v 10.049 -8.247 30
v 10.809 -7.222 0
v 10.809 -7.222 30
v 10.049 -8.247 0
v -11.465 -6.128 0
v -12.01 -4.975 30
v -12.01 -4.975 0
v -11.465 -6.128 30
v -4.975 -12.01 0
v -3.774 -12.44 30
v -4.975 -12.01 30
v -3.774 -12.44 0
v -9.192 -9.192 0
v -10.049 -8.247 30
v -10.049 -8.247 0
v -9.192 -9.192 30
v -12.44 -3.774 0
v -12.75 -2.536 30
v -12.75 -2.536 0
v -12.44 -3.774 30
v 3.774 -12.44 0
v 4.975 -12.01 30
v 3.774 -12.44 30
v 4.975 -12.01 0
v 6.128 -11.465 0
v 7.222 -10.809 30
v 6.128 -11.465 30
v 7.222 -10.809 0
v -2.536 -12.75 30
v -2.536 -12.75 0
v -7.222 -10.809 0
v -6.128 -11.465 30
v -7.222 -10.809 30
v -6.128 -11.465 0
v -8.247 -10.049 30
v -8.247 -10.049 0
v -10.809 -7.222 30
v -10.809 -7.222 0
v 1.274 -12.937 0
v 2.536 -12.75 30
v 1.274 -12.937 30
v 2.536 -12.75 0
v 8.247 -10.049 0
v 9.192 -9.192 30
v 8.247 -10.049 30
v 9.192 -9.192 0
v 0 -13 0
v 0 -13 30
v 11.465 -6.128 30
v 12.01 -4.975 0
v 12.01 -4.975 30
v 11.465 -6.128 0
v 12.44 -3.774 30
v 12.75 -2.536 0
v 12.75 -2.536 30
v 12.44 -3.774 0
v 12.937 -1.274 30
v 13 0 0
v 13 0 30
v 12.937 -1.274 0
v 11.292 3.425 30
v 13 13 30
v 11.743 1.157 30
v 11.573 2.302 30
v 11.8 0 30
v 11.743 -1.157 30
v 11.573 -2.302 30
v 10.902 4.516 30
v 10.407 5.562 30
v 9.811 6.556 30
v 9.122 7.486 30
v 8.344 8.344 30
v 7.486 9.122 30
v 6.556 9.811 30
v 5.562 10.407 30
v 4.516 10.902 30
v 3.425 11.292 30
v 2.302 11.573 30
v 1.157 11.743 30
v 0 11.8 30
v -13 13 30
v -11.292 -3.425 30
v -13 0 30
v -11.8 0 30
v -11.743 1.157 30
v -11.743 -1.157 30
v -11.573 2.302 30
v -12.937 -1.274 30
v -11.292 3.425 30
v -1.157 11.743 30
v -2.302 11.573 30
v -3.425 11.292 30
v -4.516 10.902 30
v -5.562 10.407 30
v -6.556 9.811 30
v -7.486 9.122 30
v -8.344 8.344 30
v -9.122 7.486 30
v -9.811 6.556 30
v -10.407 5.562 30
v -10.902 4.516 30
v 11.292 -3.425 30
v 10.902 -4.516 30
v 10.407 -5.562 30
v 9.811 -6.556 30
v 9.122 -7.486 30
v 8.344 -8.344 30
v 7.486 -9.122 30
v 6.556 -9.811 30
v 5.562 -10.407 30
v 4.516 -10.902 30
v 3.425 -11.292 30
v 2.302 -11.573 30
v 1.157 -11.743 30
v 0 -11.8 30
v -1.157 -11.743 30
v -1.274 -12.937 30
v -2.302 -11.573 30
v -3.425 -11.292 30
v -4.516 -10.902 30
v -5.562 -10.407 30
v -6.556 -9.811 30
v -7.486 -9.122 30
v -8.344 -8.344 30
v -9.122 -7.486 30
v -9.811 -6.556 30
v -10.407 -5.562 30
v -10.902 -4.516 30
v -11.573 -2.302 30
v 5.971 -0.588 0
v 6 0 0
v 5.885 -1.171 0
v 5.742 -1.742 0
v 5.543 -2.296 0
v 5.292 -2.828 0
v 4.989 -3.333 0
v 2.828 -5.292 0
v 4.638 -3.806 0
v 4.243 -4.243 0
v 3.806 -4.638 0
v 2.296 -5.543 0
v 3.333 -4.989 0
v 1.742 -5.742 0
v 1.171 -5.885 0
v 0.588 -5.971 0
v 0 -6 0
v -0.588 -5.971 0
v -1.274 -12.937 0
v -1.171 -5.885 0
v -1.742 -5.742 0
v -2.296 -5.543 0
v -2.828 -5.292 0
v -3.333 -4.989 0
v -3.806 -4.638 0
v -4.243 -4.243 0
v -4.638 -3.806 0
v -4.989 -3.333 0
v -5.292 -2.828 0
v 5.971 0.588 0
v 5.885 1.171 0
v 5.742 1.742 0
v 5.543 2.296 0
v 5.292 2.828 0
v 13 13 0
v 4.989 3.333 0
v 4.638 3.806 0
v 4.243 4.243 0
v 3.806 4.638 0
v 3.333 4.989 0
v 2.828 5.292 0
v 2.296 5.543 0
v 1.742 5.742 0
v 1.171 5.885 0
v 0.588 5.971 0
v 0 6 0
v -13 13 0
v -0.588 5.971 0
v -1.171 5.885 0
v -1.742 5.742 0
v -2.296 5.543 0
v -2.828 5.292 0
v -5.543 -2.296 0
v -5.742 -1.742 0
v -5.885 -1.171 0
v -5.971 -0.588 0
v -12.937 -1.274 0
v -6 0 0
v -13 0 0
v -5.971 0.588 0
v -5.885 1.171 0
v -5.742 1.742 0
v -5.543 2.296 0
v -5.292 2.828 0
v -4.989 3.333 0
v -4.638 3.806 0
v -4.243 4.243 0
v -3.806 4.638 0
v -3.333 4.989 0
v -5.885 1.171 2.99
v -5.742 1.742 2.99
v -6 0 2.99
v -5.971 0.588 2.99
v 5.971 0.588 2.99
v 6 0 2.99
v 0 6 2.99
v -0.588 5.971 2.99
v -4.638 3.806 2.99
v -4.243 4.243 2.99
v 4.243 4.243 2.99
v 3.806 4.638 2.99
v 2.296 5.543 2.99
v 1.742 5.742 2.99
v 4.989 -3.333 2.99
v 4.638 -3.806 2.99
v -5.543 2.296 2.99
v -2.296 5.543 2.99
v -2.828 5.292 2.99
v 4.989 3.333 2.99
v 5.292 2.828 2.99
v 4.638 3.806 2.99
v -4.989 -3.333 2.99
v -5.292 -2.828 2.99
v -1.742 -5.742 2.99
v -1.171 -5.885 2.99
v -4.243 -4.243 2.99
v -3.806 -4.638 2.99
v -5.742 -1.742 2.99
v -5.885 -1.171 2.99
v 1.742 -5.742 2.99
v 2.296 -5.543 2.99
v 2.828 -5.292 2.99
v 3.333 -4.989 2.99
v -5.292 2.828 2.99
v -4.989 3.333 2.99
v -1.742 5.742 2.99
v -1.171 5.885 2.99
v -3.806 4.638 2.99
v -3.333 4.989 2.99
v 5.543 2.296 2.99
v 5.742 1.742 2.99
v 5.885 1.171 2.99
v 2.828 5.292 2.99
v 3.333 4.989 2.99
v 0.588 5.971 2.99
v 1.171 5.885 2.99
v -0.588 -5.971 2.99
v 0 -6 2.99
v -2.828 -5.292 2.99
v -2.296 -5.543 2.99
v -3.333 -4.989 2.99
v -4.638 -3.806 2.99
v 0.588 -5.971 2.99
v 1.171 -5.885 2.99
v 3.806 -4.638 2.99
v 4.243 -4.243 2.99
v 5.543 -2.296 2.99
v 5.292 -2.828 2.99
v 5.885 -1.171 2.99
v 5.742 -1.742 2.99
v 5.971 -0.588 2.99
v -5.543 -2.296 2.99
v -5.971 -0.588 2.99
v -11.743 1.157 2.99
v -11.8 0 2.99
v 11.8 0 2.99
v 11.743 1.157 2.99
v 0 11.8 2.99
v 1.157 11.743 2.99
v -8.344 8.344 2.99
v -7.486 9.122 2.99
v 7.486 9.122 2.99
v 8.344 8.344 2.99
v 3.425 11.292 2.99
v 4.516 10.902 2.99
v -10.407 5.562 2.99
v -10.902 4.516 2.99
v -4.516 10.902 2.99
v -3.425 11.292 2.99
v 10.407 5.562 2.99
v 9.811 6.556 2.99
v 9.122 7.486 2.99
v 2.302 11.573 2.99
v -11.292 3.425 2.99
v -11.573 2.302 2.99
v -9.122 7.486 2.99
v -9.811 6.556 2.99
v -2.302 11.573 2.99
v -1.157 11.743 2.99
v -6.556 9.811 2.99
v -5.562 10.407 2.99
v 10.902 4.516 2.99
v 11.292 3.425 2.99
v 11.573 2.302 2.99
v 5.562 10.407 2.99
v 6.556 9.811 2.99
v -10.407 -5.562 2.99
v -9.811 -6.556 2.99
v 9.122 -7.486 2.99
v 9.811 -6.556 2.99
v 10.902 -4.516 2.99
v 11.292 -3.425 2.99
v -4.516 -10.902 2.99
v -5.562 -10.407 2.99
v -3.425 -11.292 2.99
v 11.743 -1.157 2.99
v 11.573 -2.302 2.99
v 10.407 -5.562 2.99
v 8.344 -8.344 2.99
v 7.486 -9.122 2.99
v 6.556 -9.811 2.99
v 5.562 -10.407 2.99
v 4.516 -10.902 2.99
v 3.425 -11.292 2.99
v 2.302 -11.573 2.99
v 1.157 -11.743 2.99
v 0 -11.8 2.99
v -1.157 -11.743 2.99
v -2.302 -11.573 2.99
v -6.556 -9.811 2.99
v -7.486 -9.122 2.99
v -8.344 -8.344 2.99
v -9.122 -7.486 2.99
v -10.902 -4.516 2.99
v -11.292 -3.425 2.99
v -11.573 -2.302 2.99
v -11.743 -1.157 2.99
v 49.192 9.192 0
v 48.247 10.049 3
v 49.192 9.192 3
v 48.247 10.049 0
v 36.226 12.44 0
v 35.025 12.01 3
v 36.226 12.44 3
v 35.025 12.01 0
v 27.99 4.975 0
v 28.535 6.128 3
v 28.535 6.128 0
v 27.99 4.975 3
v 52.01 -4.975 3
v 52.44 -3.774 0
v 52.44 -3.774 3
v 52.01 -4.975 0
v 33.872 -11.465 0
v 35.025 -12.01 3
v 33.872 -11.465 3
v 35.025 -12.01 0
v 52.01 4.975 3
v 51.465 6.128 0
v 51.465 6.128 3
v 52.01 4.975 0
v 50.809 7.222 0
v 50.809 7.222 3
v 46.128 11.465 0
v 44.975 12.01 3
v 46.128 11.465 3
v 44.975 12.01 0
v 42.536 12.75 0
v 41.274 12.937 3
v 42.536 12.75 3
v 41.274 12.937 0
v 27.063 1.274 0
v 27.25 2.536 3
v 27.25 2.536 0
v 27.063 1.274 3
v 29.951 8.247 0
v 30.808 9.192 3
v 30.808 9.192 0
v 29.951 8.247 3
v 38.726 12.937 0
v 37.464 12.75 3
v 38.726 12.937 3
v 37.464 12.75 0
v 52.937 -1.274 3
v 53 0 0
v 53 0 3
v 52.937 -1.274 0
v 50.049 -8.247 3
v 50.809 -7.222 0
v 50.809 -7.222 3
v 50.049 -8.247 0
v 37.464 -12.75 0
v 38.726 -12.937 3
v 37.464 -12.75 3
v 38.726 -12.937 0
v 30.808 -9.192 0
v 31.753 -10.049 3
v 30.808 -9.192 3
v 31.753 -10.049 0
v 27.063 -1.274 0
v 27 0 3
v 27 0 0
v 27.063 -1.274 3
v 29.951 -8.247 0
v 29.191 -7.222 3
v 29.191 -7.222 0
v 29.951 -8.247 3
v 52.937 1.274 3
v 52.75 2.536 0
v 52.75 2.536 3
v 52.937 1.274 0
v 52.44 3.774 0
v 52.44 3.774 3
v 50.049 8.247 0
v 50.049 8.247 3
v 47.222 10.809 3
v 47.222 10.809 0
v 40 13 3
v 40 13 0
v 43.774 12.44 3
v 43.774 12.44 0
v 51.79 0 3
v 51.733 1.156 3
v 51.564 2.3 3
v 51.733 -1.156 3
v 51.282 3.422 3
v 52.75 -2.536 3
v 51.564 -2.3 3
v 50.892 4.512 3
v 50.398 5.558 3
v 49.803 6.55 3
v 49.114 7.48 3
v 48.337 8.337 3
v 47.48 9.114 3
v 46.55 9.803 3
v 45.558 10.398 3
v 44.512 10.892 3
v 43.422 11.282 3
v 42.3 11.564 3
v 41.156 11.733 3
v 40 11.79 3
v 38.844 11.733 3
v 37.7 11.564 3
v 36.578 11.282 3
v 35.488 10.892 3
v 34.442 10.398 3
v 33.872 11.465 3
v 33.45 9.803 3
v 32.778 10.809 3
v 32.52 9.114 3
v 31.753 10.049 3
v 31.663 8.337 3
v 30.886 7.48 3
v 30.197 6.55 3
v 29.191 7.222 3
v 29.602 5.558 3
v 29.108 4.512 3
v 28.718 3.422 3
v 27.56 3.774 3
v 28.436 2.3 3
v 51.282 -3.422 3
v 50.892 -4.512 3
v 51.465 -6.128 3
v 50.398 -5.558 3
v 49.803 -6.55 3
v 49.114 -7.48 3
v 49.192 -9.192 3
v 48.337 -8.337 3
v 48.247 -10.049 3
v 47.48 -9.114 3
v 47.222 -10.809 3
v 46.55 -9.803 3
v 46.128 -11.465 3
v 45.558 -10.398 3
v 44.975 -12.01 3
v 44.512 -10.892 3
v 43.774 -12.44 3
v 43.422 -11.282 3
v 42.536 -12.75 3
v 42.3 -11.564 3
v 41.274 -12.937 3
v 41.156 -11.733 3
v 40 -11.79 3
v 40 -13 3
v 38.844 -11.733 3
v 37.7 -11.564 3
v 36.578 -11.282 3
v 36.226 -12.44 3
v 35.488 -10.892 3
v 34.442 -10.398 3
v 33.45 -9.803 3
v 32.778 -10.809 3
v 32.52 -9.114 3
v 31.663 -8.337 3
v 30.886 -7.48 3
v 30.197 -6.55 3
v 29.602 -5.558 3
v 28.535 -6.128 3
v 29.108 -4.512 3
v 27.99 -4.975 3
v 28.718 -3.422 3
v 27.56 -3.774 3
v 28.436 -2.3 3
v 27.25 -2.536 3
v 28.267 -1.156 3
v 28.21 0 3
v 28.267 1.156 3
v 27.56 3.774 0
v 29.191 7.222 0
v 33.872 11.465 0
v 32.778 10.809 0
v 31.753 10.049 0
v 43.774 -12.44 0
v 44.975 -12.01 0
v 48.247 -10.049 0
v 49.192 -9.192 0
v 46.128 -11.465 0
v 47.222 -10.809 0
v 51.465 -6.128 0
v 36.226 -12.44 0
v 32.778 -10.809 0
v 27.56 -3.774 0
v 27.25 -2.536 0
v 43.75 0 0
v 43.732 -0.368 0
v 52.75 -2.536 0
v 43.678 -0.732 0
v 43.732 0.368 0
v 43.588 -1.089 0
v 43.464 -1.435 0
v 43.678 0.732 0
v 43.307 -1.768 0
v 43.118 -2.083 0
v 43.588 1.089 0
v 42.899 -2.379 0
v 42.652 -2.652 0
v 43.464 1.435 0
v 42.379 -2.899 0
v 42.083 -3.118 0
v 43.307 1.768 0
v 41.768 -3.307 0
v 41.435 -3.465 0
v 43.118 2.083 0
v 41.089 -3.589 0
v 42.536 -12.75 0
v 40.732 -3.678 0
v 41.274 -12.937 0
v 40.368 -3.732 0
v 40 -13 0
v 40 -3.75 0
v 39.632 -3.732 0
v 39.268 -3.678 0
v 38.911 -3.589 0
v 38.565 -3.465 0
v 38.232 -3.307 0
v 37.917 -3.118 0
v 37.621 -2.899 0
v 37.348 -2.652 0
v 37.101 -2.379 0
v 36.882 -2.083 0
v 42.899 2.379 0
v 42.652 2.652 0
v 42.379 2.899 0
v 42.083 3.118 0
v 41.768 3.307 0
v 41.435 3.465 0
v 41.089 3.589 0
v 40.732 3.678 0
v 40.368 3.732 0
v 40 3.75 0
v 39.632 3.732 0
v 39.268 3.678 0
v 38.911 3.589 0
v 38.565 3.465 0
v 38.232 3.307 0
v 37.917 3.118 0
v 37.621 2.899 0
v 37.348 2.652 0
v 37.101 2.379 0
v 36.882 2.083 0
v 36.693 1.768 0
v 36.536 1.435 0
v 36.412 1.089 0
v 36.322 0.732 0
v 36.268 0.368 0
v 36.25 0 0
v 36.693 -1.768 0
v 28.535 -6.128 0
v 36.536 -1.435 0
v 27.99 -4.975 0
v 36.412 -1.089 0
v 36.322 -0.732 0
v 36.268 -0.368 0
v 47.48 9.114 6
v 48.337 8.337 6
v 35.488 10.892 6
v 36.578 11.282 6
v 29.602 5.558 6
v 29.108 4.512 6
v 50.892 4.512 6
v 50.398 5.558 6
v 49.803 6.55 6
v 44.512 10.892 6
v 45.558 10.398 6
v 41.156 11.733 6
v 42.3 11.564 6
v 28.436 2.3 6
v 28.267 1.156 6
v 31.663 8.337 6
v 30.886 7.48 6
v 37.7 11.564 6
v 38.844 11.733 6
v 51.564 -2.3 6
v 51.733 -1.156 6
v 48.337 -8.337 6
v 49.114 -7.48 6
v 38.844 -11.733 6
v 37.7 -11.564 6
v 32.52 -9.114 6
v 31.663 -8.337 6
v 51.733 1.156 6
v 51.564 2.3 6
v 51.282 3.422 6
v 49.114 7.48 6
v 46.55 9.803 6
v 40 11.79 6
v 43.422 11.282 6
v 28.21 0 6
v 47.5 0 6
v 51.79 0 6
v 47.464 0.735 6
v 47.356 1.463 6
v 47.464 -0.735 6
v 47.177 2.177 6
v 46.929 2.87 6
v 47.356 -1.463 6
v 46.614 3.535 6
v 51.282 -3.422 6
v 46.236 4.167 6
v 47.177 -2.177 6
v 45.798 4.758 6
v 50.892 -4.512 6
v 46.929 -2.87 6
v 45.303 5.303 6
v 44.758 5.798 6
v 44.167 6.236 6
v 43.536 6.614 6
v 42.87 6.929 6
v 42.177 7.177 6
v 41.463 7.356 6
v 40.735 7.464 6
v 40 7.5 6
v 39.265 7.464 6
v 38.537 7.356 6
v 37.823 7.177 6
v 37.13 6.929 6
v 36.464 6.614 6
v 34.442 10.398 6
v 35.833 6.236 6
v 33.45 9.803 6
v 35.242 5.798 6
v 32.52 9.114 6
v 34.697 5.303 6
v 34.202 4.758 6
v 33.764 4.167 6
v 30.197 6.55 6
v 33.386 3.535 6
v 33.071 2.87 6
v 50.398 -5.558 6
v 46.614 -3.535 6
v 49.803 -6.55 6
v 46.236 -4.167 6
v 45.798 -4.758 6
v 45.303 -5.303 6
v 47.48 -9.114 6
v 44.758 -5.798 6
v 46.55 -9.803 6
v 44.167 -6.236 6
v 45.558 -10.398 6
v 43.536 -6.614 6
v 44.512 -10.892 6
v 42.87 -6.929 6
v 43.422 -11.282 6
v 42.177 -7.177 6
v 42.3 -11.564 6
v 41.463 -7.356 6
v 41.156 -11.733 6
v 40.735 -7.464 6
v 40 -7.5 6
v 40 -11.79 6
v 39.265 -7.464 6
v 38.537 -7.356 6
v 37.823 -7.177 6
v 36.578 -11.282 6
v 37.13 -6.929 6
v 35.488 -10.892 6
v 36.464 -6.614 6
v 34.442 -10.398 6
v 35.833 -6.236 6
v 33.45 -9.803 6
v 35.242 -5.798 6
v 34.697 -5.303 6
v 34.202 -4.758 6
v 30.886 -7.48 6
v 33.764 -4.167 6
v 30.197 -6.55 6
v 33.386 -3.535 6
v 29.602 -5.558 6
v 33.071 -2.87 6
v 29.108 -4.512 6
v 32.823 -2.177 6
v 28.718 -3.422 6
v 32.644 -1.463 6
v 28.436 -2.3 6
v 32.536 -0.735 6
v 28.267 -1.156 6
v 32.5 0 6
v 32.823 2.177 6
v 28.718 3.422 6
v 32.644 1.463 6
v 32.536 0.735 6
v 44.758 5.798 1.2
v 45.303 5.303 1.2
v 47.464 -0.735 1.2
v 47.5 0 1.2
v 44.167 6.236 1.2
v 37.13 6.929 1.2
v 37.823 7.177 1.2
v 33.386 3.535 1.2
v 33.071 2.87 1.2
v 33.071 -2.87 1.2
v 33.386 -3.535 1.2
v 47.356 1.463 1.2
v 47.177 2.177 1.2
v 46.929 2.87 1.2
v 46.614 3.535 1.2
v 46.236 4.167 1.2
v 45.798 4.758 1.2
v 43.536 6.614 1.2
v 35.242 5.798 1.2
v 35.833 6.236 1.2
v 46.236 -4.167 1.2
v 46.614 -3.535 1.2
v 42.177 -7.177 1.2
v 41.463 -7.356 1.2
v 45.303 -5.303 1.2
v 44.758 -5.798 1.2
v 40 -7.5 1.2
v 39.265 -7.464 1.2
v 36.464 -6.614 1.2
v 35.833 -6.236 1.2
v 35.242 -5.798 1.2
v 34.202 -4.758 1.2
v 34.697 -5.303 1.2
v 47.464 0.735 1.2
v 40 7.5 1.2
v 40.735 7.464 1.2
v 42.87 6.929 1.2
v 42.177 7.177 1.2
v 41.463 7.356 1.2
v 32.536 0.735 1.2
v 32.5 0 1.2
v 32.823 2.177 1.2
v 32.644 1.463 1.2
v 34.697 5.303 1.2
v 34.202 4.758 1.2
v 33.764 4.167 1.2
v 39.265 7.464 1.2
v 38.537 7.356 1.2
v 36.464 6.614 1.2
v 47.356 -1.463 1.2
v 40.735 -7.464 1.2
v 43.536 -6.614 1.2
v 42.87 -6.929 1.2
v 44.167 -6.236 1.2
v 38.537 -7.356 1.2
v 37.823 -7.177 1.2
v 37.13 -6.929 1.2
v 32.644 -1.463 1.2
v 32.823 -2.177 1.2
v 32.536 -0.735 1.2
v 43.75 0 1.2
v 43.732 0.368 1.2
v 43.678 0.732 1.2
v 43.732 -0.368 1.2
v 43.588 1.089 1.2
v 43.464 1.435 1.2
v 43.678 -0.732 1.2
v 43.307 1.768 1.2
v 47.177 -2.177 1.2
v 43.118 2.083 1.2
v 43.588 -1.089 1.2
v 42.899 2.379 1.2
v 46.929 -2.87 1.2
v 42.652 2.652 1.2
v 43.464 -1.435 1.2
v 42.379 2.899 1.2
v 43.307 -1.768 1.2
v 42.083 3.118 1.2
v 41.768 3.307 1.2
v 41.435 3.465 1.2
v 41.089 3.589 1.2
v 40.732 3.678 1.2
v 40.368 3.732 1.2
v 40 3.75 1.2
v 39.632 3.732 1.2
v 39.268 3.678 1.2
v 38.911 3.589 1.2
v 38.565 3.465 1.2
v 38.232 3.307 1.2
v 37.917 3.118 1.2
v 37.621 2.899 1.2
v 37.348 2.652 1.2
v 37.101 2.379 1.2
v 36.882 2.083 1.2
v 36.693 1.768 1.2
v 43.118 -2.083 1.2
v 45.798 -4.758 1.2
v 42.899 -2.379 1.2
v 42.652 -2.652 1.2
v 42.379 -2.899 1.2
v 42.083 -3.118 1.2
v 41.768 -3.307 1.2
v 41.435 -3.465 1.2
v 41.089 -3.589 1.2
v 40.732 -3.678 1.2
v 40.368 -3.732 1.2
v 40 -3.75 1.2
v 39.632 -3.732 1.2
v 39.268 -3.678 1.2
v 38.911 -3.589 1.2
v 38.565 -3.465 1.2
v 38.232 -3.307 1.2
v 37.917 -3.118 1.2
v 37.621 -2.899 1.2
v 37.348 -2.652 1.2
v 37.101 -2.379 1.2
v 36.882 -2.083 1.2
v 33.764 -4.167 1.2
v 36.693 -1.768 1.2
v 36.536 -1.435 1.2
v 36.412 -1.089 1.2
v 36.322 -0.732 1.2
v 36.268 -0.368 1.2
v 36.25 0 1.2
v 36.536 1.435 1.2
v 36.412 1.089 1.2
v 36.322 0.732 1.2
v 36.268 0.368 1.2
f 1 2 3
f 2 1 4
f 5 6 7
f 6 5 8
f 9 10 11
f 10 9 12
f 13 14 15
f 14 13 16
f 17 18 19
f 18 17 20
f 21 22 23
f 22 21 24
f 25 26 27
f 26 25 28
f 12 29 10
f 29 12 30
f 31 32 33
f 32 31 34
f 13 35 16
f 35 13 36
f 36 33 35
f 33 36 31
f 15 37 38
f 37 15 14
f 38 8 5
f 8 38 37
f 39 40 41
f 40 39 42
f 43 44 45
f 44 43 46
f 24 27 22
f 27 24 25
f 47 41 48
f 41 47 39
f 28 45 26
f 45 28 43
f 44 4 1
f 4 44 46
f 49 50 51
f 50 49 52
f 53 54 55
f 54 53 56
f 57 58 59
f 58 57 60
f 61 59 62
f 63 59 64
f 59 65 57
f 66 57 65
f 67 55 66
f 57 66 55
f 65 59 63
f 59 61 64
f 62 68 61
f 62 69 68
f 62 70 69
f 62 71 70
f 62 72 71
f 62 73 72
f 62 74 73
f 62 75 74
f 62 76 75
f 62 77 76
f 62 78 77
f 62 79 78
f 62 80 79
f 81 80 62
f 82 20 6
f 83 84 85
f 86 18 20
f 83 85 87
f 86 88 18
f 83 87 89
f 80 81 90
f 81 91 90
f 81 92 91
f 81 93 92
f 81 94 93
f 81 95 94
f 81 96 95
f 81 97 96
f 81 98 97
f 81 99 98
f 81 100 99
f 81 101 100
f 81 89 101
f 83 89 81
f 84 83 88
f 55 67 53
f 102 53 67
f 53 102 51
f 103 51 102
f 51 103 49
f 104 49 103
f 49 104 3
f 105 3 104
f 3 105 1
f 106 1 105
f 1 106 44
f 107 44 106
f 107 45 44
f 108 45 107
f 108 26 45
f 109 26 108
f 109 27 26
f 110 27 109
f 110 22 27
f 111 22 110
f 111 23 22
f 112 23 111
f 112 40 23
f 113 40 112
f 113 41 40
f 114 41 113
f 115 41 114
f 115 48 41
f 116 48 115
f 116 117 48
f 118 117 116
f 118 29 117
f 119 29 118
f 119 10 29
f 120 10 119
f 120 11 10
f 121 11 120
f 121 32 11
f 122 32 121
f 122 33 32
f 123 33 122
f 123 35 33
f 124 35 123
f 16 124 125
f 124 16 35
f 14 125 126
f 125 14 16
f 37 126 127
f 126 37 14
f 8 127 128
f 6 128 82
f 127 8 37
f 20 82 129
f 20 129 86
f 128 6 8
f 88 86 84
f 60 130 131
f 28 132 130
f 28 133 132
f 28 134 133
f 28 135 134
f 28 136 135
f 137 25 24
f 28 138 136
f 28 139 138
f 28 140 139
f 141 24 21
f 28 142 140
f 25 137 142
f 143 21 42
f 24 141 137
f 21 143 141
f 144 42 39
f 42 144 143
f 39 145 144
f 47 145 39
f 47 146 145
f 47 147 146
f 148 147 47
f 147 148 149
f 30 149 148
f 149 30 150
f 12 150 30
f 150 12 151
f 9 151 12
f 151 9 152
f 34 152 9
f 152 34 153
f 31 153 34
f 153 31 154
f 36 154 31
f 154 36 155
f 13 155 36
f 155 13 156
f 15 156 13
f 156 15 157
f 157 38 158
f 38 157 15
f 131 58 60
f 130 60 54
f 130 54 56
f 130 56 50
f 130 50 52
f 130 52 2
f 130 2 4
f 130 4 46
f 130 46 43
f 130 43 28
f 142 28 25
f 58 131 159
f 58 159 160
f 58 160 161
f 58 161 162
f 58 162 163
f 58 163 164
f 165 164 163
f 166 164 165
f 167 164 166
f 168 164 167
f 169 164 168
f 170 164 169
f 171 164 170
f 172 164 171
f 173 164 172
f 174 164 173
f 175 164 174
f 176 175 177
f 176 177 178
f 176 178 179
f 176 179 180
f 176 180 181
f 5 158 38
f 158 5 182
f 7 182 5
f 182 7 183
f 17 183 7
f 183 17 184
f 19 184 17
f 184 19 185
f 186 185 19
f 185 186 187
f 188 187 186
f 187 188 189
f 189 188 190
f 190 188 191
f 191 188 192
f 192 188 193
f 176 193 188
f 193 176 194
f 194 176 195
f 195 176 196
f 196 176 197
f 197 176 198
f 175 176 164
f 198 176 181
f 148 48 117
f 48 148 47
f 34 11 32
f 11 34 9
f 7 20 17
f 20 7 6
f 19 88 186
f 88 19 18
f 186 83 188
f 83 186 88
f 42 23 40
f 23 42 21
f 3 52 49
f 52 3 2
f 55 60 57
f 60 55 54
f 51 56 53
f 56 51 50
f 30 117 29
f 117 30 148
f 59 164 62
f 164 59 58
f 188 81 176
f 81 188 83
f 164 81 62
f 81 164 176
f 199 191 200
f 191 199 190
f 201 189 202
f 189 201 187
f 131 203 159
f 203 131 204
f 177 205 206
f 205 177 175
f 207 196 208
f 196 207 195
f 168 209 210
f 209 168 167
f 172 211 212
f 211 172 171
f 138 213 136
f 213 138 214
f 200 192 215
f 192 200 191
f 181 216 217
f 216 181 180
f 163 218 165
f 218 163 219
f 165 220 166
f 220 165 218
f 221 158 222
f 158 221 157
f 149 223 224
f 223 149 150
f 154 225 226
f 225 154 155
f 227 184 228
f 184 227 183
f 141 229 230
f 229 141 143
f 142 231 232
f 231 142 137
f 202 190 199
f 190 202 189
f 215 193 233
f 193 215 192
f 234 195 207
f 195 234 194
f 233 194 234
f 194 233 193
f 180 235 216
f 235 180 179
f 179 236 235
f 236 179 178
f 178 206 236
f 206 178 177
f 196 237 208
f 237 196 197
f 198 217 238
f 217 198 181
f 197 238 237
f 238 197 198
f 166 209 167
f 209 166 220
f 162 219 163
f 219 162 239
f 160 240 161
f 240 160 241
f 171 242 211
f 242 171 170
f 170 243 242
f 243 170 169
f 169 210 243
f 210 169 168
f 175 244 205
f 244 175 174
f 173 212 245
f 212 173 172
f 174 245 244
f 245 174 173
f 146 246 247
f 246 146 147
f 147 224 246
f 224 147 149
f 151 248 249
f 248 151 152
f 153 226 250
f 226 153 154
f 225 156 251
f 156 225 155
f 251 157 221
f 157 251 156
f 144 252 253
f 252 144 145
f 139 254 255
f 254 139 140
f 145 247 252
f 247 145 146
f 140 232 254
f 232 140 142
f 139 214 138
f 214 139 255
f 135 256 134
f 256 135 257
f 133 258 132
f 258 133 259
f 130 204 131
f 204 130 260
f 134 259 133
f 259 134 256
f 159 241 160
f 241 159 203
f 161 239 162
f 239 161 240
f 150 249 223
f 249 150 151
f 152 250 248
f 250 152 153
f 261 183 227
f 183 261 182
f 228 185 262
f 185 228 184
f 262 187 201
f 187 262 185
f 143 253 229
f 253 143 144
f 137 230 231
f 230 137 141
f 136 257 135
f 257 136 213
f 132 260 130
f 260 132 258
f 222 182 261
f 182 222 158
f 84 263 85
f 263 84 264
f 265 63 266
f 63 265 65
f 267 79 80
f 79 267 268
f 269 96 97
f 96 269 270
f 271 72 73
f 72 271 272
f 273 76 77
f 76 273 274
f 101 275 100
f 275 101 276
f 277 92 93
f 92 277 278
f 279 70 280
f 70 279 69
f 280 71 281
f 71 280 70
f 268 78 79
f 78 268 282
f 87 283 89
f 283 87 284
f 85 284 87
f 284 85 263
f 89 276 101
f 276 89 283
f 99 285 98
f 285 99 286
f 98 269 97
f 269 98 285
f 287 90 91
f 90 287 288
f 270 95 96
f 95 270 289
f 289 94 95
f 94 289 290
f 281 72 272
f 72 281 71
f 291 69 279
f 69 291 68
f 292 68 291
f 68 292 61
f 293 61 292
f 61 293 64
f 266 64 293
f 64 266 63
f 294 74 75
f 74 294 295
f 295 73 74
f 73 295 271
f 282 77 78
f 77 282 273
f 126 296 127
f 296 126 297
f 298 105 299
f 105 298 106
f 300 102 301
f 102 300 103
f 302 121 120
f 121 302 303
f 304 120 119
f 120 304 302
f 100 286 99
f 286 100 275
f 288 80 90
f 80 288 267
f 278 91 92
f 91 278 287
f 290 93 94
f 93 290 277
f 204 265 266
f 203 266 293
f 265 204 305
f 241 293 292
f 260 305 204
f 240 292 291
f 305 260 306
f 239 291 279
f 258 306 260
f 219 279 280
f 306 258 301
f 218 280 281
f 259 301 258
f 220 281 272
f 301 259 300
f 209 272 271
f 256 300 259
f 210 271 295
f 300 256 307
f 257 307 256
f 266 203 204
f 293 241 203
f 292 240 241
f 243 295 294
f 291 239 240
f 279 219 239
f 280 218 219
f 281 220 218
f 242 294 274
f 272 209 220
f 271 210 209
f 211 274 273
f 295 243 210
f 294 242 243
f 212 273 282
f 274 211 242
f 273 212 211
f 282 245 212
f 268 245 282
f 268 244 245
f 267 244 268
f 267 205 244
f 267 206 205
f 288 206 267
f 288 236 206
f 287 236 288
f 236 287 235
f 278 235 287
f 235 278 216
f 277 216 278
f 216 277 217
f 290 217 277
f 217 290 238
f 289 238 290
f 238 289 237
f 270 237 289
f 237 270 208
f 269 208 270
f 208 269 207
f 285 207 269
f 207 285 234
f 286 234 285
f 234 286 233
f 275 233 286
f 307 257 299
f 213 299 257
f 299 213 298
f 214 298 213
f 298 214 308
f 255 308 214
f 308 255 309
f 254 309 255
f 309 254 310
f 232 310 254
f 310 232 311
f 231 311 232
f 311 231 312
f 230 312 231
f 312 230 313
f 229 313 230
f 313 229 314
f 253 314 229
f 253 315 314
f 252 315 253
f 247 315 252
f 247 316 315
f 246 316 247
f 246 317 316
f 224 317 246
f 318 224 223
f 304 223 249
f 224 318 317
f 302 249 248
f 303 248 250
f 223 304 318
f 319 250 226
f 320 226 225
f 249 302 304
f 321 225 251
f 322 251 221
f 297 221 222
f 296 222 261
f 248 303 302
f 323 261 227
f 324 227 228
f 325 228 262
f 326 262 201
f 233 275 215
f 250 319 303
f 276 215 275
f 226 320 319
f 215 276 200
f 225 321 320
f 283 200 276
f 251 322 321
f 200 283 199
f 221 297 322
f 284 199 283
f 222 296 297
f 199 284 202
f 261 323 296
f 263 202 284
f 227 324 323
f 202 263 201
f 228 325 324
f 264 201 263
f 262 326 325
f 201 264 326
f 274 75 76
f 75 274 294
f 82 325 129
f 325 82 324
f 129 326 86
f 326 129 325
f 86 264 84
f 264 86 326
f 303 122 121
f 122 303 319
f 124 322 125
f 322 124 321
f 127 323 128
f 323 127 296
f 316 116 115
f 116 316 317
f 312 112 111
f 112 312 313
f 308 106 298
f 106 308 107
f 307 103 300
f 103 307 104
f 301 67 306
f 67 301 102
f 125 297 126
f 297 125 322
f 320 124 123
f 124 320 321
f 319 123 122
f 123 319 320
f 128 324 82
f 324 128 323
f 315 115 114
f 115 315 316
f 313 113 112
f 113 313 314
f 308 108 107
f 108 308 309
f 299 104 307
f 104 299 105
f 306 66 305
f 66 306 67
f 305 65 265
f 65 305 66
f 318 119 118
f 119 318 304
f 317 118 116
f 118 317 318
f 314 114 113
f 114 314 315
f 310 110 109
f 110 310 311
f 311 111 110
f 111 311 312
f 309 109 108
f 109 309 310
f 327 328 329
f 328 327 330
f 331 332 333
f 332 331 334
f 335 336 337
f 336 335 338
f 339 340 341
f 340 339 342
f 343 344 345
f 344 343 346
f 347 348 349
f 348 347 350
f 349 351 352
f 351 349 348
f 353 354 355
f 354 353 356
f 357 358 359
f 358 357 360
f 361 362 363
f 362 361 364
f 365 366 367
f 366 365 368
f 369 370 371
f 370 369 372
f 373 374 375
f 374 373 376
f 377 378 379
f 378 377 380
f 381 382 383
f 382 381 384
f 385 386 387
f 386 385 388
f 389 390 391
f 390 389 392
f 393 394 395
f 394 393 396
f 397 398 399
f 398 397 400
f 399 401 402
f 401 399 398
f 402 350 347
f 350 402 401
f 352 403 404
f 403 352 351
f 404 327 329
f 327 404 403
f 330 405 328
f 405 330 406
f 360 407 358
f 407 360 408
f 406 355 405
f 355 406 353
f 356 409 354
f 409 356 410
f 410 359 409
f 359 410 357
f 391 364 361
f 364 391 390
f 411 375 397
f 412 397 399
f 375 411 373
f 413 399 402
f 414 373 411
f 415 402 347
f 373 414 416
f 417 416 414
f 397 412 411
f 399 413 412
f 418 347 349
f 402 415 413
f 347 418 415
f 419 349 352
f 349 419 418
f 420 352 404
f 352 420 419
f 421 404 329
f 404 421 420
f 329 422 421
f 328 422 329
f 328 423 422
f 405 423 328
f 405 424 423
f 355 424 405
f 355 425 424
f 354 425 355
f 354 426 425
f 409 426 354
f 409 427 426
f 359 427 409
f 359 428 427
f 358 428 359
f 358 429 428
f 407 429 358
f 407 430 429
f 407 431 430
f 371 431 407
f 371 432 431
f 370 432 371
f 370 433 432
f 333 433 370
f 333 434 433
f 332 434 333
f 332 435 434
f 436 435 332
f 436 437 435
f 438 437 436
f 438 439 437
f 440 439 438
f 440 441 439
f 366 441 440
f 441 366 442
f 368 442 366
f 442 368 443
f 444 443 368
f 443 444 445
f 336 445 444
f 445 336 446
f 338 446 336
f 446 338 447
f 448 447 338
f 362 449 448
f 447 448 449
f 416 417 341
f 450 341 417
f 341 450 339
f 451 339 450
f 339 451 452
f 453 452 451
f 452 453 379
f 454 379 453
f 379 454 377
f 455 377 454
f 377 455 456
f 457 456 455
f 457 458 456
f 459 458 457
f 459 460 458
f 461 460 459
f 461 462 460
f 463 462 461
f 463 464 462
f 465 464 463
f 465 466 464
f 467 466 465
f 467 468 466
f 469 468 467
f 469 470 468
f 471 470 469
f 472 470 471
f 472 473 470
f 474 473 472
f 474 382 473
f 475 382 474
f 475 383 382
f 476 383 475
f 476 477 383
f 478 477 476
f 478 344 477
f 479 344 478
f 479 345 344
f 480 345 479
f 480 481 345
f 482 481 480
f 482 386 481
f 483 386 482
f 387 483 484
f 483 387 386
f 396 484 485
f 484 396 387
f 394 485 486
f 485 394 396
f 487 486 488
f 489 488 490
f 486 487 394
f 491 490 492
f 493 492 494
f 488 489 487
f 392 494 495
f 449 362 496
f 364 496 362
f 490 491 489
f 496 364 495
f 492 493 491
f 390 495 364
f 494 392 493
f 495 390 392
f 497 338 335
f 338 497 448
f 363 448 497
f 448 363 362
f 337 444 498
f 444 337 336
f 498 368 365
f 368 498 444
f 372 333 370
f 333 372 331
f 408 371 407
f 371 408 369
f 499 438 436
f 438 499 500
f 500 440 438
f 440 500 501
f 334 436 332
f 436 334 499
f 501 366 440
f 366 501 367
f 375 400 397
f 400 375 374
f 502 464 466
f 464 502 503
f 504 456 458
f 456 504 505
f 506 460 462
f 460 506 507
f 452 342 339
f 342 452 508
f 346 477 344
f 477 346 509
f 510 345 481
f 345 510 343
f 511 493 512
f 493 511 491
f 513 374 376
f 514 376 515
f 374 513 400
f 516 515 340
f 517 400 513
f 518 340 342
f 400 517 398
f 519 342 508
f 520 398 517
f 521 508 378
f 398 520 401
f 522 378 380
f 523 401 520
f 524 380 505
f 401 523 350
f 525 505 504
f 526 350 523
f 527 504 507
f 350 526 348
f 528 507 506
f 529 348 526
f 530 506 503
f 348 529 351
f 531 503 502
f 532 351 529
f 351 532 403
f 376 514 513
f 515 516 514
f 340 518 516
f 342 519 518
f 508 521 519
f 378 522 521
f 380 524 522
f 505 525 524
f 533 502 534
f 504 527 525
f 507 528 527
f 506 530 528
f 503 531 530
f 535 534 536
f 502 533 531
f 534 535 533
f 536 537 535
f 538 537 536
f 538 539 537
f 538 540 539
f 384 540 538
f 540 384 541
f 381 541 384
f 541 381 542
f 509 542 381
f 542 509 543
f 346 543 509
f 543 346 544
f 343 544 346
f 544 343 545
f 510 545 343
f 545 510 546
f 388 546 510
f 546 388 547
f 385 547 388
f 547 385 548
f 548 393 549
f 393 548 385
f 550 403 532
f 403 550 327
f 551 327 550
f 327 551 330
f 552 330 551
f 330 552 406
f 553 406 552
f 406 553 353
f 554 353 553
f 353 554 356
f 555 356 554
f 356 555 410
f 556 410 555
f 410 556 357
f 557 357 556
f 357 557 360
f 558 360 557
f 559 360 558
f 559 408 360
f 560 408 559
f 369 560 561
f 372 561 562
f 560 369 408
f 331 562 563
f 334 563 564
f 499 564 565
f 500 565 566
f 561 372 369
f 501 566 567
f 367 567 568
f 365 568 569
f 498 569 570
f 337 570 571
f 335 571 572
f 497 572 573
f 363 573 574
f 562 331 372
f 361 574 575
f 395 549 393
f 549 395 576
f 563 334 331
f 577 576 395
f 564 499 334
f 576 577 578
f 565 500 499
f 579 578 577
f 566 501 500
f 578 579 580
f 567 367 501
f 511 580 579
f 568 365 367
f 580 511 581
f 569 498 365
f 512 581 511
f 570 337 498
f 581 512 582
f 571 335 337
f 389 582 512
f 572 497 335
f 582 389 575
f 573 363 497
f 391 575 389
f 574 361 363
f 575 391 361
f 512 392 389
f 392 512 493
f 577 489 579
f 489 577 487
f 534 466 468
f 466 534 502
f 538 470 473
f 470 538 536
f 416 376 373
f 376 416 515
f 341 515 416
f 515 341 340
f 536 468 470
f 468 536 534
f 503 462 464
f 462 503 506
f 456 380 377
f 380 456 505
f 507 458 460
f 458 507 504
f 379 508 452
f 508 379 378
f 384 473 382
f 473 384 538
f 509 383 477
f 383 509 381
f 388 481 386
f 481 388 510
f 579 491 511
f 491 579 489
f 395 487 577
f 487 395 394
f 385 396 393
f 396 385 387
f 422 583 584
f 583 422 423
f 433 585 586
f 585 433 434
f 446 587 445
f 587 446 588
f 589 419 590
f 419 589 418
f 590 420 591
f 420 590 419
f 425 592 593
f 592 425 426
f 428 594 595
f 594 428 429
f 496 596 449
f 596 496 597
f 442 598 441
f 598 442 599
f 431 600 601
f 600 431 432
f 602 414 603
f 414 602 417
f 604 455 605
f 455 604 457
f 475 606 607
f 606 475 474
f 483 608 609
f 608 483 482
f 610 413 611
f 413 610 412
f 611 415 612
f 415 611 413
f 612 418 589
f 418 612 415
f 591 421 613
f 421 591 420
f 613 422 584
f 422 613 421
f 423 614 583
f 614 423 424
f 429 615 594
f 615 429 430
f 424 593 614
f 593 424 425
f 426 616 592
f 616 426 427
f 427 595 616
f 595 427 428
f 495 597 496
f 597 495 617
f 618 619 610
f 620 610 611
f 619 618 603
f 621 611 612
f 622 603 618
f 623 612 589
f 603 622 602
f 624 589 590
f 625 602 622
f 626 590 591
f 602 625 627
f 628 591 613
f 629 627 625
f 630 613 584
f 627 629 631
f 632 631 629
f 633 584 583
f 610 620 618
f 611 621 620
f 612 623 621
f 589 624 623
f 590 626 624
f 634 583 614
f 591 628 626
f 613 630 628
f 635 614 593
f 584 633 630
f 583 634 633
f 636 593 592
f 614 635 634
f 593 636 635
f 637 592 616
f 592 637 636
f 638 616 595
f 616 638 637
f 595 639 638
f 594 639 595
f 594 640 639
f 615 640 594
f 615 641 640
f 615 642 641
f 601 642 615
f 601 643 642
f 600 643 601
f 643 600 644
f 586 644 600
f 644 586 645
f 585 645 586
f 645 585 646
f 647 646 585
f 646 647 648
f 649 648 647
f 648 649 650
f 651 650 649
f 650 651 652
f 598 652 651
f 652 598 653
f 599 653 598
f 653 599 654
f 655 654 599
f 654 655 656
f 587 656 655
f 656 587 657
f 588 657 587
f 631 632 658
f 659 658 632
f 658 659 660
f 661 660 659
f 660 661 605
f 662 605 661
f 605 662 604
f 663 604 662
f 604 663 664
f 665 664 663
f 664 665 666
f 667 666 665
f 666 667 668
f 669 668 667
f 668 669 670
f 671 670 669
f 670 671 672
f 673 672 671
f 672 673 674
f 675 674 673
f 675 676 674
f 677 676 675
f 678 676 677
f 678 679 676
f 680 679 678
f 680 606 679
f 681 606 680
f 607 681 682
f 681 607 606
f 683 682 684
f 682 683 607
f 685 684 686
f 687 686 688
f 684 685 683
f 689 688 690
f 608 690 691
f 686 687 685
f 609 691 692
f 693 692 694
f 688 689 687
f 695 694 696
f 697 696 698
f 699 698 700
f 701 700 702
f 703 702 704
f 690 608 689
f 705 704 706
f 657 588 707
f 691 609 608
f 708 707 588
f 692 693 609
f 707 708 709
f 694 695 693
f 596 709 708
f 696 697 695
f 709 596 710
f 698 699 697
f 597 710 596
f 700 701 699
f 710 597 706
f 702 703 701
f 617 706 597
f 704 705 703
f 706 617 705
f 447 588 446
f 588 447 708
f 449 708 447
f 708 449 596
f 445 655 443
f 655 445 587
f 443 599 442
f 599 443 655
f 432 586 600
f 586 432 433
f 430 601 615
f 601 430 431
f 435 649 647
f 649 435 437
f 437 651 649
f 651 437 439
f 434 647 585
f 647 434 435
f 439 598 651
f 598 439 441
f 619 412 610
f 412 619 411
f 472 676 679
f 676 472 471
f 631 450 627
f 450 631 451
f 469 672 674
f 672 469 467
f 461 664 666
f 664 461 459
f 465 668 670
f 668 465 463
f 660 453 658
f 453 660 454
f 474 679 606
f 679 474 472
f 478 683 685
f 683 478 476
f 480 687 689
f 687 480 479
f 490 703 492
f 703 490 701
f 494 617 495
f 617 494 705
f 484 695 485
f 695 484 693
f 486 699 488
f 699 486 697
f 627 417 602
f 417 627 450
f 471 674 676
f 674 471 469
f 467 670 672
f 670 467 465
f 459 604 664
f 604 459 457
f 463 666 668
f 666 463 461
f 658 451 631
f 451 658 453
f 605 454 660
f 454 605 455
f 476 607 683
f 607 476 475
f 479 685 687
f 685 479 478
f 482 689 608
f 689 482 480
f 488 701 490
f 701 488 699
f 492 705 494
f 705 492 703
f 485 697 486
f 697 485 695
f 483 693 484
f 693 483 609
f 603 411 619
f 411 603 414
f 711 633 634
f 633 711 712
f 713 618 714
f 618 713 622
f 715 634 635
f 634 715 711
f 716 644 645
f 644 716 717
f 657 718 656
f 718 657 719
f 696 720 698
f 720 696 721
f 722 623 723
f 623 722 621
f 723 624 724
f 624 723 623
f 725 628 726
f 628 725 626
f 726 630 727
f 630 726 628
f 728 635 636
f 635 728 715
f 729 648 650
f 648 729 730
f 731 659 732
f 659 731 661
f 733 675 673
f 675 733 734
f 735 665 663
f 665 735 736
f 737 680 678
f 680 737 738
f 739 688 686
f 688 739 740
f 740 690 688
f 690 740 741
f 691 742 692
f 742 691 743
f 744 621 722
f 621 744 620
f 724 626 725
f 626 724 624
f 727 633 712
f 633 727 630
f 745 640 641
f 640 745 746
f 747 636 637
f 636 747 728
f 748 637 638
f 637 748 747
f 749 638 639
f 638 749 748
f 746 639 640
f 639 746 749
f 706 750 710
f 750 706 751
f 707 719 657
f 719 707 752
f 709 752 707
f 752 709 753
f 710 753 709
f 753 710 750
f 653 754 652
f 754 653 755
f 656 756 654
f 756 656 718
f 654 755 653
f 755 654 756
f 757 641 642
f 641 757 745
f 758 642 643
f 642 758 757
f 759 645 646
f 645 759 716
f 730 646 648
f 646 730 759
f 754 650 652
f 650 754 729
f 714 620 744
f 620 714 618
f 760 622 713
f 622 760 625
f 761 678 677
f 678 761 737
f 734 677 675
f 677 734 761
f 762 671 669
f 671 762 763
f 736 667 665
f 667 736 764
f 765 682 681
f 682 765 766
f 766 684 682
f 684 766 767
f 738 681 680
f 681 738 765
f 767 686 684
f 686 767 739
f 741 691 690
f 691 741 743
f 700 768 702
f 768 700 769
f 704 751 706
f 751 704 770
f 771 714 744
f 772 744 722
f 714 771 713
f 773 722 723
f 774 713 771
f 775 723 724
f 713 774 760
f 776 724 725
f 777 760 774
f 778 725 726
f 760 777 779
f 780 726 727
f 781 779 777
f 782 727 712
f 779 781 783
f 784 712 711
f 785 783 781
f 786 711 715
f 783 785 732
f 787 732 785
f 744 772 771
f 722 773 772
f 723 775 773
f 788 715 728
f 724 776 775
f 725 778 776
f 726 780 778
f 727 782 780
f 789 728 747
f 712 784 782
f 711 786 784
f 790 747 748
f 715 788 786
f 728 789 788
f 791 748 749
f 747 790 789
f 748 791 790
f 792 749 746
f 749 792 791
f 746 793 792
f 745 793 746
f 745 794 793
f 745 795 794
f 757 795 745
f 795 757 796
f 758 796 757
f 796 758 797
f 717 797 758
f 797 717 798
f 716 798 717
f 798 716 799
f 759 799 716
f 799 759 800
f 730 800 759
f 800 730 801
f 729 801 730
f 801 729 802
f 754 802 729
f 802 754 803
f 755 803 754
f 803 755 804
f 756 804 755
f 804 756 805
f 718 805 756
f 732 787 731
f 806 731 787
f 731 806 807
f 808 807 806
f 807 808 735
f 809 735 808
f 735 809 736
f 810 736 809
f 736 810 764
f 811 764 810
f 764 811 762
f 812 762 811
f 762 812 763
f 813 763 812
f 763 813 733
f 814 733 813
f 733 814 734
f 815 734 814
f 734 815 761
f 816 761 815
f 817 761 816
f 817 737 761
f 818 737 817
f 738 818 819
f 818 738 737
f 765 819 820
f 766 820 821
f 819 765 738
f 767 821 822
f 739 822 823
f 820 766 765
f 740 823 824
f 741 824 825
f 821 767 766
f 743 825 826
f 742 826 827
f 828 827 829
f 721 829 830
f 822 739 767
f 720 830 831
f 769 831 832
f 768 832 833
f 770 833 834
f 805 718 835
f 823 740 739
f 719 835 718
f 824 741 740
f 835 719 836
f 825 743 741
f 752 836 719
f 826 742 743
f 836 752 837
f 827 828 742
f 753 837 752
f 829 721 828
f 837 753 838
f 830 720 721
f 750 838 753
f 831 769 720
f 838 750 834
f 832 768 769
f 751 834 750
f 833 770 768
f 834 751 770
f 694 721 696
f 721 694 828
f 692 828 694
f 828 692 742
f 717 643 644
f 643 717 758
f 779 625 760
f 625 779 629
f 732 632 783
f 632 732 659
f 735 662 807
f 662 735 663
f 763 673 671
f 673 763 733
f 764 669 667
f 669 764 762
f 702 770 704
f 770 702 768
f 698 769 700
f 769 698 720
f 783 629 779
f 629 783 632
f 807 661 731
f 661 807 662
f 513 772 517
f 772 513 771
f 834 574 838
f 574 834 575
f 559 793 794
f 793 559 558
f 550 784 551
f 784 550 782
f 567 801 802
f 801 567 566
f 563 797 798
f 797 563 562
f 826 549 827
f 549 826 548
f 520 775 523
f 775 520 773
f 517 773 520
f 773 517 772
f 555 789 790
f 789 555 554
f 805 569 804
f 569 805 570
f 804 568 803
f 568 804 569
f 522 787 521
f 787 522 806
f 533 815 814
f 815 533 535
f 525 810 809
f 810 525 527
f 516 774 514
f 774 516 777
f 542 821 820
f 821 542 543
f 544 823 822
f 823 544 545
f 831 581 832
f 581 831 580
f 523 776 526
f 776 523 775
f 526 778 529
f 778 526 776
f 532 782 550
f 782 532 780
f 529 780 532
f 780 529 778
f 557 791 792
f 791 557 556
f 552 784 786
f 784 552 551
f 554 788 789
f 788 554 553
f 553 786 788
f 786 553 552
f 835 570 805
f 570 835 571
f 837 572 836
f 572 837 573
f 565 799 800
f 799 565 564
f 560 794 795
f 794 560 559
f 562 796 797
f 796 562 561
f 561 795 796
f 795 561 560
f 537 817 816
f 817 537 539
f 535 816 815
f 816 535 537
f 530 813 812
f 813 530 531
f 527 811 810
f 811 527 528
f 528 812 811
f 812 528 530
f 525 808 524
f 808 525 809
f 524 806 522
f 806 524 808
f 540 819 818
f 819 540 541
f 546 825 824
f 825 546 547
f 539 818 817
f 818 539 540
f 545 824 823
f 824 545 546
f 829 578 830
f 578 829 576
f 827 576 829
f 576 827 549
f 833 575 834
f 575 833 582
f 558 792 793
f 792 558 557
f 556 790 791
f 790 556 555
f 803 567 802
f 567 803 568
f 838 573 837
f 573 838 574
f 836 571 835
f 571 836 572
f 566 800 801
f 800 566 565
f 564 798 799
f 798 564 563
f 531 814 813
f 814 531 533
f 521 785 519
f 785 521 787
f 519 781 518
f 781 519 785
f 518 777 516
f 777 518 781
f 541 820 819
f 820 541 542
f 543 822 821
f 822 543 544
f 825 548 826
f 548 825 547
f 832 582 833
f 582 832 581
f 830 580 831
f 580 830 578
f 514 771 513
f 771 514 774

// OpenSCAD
$fn = 64;

mount_depth = 30;
plug_diameter = 12;
lip_width = 7;
side_wall_strength = 1.2;
grommet_diameter = 7.5;
grommet_wall_strength = 1.2;
top_wall_strength = 3;

fudge = 0.01;

// Derived values, do not edit
pf = fudge;
nf = -fudge;
dpf = 2 * pf;
outer_diameter = plug_diameter + 2 * lip_width;

module mount() {
    difference() {
        
        union() {
            cylinder(d = outer_diameter, h = mount_depth);
            translate([-outer_diameter/2, 0, 0]) 
                cube([outer_diameter, outer_diameter/2, mount_depth]);
        }
        translate([0,0, nf]) {
            cylinder(d = plug_diameter, h = mount_depth + dpf);
            cylinder(d = outer_diameter - 2 * side_wall_strength, h = mount_depth - top_wall_strength + dpf);
        }
        
    }
}

module cap() {
    difference() {
        union() {
            cylinder(d = outer_diameter, h = top_wall_strength);
            translate([0, 0, top_wall_strength])
                cylinder(d = outer_diameter - 2 * side_wall_strength - dpf, h = top_wall_strength);
        }
        translate([0,0,grommet_wall_strength])
            cylinder(d = 2 * grommet_diameter, h = 2 * top_wall_strength - grommet_wall_strength + pf);
        translate([0, 0, nf])
            cylinder(d = grommet_diameter, h = 2 * top_wall_strength + dpf);
    }
    
}

translate([0, 0, mount_depth])
    rotate([0, 180, 0]) 
        mount();
translate([40, 0, 0]) cap();
